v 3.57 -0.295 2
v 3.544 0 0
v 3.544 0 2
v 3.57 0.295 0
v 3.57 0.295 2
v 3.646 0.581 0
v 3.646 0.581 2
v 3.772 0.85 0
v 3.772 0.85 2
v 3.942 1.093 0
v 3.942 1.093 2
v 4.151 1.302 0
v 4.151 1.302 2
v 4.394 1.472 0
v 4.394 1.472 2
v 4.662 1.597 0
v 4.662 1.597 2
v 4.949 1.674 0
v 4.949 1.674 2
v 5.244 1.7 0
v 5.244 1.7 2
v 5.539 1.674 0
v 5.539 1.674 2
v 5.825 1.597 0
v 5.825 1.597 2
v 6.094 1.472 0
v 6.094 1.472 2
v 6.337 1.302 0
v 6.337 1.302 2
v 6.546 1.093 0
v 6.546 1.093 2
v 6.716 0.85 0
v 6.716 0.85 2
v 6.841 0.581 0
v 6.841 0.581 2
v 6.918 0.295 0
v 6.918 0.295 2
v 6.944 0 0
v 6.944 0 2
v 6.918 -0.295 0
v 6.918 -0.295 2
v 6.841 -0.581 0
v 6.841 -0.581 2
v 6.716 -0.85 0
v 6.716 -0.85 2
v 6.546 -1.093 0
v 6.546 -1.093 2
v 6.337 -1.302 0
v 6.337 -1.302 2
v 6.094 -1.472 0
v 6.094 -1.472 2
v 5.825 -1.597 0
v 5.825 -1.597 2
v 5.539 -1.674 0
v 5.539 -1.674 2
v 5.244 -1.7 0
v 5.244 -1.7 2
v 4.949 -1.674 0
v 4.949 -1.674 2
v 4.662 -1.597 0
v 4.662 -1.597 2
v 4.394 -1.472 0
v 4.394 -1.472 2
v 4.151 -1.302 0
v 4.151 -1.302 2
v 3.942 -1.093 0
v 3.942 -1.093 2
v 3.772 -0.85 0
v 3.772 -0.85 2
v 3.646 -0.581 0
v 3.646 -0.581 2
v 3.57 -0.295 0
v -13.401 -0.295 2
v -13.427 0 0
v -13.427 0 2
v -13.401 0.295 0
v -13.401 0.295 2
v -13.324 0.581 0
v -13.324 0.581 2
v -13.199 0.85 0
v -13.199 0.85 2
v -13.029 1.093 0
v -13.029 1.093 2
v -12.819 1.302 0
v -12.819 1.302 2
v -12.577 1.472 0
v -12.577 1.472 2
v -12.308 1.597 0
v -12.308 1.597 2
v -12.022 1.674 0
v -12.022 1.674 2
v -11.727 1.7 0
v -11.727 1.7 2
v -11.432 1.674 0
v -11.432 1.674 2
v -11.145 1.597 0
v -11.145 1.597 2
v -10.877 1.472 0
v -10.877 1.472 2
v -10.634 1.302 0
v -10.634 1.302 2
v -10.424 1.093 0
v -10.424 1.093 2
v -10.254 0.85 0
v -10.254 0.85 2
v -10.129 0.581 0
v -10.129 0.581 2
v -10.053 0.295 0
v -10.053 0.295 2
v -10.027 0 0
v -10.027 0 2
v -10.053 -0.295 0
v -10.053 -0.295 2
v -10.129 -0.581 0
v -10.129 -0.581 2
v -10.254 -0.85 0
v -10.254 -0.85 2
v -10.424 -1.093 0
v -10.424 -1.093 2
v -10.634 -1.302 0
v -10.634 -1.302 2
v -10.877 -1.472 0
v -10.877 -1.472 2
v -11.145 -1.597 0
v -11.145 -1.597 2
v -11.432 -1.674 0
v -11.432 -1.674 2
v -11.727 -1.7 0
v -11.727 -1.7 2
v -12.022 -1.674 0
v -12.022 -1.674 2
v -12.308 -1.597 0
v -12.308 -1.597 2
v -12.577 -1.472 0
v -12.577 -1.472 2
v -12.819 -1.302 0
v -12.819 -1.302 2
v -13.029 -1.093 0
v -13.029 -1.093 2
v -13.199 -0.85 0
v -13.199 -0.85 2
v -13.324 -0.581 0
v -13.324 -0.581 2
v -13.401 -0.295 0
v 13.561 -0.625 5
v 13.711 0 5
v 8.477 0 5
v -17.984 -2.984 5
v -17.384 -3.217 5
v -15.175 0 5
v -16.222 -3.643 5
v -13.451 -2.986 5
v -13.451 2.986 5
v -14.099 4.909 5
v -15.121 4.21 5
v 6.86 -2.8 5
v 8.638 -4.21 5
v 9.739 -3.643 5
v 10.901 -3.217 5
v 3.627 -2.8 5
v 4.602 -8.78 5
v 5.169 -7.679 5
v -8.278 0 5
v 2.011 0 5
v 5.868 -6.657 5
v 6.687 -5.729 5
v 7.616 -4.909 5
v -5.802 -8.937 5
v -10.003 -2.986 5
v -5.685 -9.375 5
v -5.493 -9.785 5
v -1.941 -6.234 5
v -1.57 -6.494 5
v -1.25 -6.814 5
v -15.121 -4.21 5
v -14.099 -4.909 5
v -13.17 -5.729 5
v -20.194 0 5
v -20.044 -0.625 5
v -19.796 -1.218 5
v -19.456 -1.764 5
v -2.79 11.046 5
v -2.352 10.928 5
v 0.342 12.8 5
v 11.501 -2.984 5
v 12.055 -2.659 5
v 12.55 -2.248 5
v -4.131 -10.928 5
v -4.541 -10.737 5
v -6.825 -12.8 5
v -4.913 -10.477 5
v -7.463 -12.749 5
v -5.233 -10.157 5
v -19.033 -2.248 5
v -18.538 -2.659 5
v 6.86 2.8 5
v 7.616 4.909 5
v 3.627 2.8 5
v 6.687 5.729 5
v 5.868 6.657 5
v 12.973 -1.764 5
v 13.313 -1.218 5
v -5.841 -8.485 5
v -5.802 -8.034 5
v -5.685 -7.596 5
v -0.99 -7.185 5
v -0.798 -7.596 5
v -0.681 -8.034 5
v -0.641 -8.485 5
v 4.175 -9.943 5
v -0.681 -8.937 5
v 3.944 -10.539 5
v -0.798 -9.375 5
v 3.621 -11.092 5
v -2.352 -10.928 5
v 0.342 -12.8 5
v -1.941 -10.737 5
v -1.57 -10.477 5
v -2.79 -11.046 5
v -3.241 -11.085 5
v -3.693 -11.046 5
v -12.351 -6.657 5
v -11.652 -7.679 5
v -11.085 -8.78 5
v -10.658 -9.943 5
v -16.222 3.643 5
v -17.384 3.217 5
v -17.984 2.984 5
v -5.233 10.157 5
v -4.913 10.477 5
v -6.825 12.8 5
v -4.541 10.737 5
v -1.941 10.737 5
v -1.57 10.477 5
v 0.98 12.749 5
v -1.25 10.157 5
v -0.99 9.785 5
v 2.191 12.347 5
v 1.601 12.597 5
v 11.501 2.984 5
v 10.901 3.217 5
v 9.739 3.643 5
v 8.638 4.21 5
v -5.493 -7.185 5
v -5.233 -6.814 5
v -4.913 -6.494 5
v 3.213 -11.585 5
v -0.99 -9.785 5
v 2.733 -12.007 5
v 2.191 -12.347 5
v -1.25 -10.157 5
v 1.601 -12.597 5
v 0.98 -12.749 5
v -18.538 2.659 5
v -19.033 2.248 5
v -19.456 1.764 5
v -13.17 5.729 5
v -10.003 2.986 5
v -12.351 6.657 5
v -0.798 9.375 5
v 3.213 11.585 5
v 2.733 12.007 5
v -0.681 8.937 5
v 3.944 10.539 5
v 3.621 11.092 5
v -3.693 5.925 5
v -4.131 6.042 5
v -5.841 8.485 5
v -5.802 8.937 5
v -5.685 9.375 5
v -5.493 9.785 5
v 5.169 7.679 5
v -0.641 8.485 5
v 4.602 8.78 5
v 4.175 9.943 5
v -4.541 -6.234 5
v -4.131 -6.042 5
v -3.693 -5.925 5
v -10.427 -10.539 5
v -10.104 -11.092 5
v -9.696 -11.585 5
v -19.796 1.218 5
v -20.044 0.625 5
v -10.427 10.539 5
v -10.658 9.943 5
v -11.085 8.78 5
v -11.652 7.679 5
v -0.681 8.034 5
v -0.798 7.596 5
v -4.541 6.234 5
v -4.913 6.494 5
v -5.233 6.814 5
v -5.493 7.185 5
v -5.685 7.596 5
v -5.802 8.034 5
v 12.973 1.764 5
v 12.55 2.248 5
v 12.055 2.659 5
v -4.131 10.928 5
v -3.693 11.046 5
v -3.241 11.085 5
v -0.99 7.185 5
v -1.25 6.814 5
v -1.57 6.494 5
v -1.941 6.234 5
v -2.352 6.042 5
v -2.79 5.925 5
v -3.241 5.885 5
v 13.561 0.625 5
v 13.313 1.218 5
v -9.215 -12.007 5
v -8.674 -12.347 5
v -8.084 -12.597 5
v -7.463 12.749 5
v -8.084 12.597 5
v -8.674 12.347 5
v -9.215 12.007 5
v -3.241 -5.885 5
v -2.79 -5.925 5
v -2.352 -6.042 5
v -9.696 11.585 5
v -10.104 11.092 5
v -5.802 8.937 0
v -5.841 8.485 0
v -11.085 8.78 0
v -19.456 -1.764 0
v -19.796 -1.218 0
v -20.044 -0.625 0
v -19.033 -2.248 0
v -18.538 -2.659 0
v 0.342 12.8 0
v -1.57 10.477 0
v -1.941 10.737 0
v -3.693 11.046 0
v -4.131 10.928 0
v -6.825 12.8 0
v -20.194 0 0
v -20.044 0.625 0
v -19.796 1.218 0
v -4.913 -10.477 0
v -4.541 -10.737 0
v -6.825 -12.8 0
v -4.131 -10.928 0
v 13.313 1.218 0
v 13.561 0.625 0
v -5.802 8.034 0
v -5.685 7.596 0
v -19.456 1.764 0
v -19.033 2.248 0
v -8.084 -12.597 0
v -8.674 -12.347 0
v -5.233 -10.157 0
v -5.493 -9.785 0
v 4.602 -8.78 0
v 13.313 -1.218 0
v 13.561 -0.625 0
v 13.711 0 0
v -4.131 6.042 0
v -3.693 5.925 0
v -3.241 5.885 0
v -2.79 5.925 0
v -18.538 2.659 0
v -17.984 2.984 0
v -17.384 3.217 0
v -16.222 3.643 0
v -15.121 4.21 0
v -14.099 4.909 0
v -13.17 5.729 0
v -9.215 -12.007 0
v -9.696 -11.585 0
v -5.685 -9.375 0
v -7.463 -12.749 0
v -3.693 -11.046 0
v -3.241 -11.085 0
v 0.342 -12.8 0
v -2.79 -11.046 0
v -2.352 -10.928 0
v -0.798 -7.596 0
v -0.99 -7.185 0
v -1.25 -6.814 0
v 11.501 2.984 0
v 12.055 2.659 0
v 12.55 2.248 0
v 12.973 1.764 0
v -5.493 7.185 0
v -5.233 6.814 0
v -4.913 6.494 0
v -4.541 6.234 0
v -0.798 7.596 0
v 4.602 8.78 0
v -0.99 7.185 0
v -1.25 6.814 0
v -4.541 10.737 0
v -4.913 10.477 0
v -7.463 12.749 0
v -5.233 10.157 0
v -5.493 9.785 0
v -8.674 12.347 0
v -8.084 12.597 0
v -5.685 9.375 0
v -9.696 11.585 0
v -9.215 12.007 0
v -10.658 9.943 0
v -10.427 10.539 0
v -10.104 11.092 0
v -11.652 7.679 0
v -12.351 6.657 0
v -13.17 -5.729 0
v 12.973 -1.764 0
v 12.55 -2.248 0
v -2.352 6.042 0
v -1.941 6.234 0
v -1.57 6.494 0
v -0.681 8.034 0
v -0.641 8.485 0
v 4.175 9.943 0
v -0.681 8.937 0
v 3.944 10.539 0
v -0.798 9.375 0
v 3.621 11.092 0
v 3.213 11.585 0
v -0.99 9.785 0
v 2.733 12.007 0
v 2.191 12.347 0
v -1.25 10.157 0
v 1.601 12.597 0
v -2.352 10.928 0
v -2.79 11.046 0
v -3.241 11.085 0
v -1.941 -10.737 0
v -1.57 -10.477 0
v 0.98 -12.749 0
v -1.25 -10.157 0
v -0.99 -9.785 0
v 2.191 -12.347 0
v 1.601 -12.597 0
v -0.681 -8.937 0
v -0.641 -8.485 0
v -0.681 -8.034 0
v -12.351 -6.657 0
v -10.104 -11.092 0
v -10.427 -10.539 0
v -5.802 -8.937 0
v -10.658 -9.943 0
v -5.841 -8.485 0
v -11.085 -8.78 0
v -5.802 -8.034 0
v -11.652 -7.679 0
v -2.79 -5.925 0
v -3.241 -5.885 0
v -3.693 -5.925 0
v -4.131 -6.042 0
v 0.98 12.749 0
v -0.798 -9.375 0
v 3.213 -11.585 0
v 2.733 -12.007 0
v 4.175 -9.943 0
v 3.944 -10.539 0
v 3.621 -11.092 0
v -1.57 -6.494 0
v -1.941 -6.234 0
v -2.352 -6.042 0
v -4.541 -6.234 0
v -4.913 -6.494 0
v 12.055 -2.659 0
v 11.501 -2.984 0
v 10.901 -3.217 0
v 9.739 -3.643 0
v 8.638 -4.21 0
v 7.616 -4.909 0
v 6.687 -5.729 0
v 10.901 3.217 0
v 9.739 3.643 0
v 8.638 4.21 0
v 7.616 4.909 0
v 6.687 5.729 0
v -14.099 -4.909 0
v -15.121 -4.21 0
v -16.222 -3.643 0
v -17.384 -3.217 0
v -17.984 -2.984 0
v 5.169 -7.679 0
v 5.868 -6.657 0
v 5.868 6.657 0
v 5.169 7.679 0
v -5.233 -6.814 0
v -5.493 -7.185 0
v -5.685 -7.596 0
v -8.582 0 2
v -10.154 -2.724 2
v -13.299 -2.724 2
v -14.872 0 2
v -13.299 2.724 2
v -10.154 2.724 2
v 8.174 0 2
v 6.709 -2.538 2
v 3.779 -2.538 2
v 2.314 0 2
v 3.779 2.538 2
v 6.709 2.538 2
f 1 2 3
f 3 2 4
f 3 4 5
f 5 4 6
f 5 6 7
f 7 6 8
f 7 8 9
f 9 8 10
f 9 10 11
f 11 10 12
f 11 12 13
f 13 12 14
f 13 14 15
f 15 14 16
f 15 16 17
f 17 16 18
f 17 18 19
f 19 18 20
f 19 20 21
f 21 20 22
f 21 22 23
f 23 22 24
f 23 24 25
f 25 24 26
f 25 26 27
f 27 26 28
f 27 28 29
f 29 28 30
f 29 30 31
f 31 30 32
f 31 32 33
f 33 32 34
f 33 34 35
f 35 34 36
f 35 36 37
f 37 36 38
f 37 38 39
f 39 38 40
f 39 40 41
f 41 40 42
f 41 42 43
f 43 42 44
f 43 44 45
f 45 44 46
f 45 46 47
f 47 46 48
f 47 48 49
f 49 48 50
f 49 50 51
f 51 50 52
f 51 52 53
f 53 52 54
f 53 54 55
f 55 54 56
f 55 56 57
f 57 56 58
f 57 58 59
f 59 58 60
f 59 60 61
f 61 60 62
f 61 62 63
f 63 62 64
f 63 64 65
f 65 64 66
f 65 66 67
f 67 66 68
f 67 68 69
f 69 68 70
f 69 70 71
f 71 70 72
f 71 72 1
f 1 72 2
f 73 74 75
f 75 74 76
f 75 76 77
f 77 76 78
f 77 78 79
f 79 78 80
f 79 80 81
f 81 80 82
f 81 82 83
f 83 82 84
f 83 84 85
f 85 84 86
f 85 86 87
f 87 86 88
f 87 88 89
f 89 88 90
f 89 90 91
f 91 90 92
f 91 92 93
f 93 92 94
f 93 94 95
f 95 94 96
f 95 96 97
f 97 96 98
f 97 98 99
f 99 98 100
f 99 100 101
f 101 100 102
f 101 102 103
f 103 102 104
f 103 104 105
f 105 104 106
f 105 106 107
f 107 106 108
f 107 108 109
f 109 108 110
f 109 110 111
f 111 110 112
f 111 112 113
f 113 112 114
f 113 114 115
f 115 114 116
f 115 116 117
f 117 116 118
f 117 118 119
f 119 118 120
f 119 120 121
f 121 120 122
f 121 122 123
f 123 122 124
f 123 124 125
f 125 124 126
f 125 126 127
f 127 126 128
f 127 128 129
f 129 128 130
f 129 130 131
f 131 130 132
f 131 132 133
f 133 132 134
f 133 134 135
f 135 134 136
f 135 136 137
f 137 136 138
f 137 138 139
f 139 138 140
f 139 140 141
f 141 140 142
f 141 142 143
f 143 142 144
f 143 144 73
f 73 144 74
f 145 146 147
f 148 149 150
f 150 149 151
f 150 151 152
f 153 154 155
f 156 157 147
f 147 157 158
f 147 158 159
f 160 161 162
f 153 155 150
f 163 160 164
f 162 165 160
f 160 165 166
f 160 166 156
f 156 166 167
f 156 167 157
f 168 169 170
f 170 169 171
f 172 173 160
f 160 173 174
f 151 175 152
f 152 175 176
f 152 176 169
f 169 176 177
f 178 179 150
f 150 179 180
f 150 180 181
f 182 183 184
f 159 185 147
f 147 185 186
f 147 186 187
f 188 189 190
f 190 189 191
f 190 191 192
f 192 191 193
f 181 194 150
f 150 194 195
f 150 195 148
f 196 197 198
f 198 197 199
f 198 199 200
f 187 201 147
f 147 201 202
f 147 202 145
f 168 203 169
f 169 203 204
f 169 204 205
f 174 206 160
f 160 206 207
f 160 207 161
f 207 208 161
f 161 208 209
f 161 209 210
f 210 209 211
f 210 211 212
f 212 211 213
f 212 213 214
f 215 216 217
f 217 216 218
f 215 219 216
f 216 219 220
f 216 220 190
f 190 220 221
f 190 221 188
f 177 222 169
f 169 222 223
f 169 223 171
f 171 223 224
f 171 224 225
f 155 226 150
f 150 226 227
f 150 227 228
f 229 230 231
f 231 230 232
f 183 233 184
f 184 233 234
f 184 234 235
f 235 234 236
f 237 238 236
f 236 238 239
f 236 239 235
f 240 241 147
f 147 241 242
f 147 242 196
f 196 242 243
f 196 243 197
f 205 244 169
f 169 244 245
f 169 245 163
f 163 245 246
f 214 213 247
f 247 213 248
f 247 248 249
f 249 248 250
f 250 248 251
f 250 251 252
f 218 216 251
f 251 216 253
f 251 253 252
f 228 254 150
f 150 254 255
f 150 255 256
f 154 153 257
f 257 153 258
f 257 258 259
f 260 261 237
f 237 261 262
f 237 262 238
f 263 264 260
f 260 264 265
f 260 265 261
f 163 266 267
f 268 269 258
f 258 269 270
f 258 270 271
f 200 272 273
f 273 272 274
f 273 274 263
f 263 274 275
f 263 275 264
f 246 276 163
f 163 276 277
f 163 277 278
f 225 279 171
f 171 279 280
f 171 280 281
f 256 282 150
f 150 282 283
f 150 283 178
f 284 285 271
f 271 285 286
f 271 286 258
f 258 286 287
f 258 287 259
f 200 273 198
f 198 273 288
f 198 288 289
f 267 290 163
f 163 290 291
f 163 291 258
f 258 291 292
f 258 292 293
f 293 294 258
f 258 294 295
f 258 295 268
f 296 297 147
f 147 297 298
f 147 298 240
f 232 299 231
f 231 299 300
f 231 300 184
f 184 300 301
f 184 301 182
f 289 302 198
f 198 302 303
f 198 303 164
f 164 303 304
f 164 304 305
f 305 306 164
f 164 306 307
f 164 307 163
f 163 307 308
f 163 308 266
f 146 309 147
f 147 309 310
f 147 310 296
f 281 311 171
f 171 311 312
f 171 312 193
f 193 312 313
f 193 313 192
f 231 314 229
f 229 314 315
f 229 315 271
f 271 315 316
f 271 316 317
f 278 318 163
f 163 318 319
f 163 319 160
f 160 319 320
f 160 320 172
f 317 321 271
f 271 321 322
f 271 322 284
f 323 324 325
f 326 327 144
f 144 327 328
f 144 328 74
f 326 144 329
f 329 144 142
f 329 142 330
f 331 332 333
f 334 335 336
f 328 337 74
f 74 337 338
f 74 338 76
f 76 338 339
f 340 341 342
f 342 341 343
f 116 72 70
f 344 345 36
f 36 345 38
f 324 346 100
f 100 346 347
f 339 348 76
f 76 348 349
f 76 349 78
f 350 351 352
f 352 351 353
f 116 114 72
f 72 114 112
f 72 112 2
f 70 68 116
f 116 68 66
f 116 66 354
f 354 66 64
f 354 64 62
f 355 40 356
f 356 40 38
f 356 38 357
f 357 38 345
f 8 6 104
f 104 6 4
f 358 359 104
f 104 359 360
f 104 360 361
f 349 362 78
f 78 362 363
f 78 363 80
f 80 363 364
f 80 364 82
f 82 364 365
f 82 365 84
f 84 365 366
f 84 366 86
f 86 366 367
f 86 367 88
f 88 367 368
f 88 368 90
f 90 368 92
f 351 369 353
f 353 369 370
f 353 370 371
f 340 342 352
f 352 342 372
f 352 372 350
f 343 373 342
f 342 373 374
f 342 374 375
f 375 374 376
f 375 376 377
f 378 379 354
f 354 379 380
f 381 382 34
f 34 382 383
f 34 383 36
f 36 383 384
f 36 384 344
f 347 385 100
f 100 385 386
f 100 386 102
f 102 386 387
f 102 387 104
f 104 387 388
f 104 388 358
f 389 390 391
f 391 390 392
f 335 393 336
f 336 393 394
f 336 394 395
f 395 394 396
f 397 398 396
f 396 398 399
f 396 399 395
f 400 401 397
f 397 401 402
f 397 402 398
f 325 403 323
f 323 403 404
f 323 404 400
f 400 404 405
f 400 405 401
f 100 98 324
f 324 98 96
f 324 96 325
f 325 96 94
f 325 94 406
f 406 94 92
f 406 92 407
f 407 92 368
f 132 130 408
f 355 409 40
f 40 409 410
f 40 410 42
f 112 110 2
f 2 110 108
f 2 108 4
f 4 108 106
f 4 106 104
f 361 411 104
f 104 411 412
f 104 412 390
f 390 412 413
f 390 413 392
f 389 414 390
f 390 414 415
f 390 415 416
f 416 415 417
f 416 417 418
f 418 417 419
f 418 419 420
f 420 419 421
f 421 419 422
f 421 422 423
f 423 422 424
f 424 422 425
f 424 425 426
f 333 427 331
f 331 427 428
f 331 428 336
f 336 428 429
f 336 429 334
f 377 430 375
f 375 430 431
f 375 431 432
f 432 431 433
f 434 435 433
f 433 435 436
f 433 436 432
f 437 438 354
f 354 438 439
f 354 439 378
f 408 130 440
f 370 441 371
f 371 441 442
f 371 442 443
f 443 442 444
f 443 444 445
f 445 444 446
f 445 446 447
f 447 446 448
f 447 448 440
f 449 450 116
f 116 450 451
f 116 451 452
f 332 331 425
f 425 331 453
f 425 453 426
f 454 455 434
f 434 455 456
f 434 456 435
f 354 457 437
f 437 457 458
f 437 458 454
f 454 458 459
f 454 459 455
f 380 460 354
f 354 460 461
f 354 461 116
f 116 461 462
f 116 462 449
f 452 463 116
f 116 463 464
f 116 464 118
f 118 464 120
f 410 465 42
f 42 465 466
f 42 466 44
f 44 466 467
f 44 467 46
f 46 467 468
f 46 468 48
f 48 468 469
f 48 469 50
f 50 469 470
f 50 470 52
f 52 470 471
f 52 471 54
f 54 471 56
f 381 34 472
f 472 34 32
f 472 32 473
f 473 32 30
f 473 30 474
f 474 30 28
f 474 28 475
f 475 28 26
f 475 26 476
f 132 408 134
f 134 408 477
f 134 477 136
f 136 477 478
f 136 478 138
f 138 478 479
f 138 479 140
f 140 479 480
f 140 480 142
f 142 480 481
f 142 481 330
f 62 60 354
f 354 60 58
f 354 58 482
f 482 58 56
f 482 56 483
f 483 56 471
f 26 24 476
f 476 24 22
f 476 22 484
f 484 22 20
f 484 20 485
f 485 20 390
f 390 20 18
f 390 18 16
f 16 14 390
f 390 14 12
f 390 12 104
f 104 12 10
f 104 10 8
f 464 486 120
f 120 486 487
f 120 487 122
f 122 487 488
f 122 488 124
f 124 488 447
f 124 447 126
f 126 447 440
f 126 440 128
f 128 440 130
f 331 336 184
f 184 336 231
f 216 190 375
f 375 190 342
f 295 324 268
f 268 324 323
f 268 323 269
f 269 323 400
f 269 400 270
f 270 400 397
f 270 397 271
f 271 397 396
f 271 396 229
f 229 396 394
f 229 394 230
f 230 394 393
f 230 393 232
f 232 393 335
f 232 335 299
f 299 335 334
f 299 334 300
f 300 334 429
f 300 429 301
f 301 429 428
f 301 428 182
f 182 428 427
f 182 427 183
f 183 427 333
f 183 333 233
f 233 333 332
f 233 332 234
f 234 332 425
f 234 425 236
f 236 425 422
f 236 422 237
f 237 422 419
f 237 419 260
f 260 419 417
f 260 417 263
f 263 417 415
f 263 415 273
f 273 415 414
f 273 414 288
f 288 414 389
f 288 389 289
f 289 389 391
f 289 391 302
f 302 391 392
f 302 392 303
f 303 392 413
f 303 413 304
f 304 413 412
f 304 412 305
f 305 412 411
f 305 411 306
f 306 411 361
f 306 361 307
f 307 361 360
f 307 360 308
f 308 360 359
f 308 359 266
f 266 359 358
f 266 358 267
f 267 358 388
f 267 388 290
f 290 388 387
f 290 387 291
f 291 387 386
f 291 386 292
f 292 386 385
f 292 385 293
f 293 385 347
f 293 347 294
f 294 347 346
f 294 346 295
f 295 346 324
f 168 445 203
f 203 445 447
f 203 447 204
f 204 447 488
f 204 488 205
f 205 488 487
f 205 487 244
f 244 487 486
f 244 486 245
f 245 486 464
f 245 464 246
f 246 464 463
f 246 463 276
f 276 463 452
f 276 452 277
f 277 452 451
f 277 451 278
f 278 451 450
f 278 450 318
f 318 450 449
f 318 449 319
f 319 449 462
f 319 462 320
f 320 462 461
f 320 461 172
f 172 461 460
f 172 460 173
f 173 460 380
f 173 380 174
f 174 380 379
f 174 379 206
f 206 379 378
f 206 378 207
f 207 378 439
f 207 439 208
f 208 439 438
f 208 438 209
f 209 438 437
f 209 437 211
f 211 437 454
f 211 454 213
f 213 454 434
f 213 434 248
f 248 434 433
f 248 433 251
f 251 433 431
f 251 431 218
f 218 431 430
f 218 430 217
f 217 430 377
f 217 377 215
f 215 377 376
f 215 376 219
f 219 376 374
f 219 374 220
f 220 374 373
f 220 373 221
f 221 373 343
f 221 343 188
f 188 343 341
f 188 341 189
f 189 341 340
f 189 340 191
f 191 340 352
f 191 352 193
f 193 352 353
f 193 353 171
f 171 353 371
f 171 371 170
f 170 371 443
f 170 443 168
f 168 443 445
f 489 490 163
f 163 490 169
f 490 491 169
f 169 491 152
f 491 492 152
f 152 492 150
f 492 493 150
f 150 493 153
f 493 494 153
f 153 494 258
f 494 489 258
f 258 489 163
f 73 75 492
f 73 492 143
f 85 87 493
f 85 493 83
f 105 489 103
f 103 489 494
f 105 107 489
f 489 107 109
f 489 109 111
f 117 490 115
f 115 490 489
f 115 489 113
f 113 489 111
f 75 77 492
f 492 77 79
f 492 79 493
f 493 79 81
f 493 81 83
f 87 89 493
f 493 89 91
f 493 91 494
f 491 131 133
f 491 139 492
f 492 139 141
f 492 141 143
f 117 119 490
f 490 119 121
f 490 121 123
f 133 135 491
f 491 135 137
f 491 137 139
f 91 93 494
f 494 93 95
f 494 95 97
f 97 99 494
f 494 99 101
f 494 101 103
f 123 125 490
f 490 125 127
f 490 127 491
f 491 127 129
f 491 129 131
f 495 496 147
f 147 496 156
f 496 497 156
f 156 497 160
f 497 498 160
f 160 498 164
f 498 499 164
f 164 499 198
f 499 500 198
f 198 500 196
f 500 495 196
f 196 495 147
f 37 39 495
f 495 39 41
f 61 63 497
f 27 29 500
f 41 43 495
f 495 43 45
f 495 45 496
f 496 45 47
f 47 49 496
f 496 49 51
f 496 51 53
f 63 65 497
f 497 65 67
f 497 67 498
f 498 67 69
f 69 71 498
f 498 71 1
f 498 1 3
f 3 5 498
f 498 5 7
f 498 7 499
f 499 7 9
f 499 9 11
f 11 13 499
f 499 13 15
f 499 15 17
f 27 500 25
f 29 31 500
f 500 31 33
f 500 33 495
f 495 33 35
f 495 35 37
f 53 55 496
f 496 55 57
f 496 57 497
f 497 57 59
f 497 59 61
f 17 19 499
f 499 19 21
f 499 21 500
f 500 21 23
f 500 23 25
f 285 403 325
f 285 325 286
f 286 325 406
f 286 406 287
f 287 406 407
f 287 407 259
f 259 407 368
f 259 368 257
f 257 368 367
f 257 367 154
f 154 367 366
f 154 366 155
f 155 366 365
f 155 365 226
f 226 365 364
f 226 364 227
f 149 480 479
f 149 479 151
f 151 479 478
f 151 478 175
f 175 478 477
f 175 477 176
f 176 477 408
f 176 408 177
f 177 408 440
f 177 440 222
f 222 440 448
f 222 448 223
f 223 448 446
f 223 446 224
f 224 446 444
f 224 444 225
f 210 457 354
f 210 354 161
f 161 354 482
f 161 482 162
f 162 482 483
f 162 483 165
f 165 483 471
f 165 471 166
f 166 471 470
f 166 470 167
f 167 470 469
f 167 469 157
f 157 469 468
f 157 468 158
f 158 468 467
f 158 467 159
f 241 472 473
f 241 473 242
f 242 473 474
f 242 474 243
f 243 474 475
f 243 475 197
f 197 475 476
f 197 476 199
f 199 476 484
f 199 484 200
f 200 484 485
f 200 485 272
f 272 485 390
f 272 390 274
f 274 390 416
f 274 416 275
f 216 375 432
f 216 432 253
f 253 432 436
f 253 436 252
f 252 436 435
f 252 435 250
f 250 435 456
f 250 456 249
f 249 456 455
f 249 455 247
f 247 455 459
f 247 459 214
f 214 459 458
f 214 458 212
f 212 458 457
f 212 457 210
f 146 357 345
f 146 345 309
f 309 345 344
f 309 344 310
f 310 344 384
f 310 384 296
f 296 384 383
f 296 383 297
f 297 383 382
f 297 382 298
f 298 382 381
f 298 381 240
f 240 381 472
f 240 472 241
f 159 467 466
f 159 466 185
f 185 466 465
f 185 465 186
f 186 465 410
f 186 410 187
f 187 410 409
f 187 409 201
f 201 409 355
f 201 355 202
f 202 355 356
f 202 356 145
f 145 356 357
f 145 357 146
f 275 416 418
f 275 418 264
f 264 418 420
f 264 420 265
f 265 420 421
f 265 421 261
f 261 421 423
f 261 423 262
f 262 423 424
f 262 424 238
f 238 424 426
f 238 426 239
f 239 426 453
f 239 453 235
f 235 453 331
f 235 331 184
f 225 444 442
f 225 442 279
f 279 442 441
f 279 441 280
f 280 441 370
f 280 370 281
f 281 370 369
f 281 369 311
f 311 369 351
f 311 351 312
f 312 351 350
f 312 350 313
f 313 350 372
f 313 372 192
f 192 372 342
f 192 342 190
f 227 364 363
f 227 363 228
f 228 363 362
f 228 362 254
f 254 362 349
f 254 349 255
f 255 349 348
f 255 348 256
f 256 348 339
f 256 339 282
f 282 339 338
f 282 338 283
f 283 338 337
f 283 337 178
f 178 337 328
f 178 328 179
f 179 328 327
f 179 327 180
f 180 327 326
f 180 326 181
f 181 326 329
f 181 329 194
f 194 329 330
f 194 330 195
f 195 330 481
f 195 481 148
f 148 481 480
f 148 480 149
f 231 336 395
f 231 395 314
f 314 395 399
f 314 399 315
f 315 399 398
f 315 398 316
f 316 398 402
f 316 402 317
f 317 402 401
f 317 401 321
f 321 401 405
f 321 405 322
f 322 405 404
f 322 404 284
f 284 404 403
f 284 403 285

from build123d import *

# Parameters (mm, degrees)
ESQUISSE1_W                       = 34
ESQUISSE1_H                       = 25.6
ESQUISSE1_R                       = 1.7
ESQUISSE1_R_2                     = 2.6
BOSS_EXTRU_1_DEPTH                = 5
ENL_V_MAT_EXTRU_2_DEPTH           = 3
ENL_V_MAT_EXTRU_2_DRAFT           = -5
ENL_V_MAT_EXTRU_2_PROFILE_2_DEPTH = 3
ENL_V_MAT_EXTRU_2_PROFILE_2_DRAFT = -5
ENL_V_MAT_EXTRU_3_DEPTH           = 10
CONG_1_R                          = 4


with BuildPart() as part:
    # Esquisse1 → Boss.-Extru.1 (new body)
    with BuildSketch(Plane.XY):
        with Locations((-3.241443597, 0)):
            Rectangle(ESQUISSE1_W, ESQUISSE1_H)
        with Locations((-11.726724972, 0)):
            Circle(ESQUISSE1_R, mode=Mode.SUBTRACT)
        with Locations((-3.241443597, 8.485281374)):
            Circle(ESQUISSE1_R_2, mode=Mode.SUBTRACT)
        with Locations(Location((-3.241443597, -8.485281374, 0), (0, 0, 180))):
            Circle(ESQUISSE1_R_2, mode=Mode.SUBTRACT)
        with Locations(Location((5.243837777, 0, 0), (0, 0, 180))):
            Circle(ESQUISSE1_R, mode=Mode.SUBTRACT)
    extrude(amount=BOSS_EXTRU_1_DEPTH)


with BuildPart() as enl_v_mat_extru_2_tool:
    # Esquisse3 → Enlèv. mat.-Extru.2 (with draft: the straight prism first)
    with BuildSketch(Plane.XY.offset(5)):
        Polygon((-8.278451106, 0), (-10.002588039, 2.986292767), (-13.450861905, 2.986292767), (-15.174998837, 0), (-13.450861905, -2.986292767), (-10.002588039, -2.986292767), align=None)
    extrude(amount=-ENL_V_MAT_EXTRU_2_DEPTH)
    # Enlèv. mat.-Extru.2: the draft: its side faces are tilted about the plane it starts from
    enl_v_mat_extru_2_sides = [enl_v_mat_extru_2_tool.faces().sort_by_distance(p)[0] for p in [
        (-9.140519572, 1.493146384, 3.5),
        (-11.726724972, 2.986292767, 3.5),
        (-14.312930371, 1.493146384, 3.5),
        (-14.312930371, -1.493146384, 3.5),
        (-11.726724972, -2.986292767, 3.5),
        (-9.140519572, -1.493146384, 3.5),
    ]]
    draft(enl_v_mat_extru_2_sides, Plane.XY.offset(5), ENL_V_MAT_EXTRU_2_DRAFT)


with BuildPart() as part_1:
    add(part.part)

    # Enlèv. mat.-Extru.2: cut by enl_v_mat_extru_2_tool
    add(enl_v_mat_extru_2_tool.part, mode=Mode.SUBTRACT)


with BuildPart() as enl_v_mat_extru_2_profile_2_tool:
    # Esquisse3 → Enlèv. mat.-Extru.2 profile 2 (with draft: the straight prism first)
    with BuildSketch(Plane.XY.offset(5)):
        Polygon((8.476999284, 0), (6.860418531, 2.8), (3.627257023, 2.8), (2.010676269, 0), (3.627257023, -2.8), (6.860418531, -2.8), align=None)
    extrude(amount=-ENL_V_MAT_EXTRU_2_PROFILE_2_DEPTH)
    # Enlèv. mat.-Extru.2 profile 2: the draft: its side faces are tilted about the plane it starts from
    enl_v_mat_extru_2_profile_2_sides = [enl_v_mat_extru_2_profile_2_tool.faces().sort_by_distance(p)[0] for p in [
        (7.668708907, 1.4, 3.5),
        (5.243837777, 2.8, 3.5),
        (2.818966646, 1.4, 3.5),
        (2.818966646, -1.4, 3.5),
        (5.243837777, -2.8, 3.5),
        (7.668708907, -1.4, 3.5),
    ]]
    draft(enl_v_mat_extru_2_profile_2_sides, Plane.XY.offset(5), ENL_V_MAT_EXTRU_2_PROFILE_2_DRAFT)


with BuildPart() as part_2:
    add(part_1.part)

    # Enlèv. mat.-Extru.2 profile 2: cut by enl_v_mat_extru_2_profile_2_tool
    add(enl_v_mat_extru_2_profile_2_tool.part, mode=Mode.SUBTRACT)

    # Esquisse4 → Enlèv. mat.-Extru.3 (cut)
    with BuildSketch(Plane(origin=(0, 0, 0), x_dir=(-1, 0, 0), z_dir=(0, 0, -1))):
        with BuildLine():
            Line((10.241443597, 12.8), (20.241443597, 12.8))
            Line((20.241443597, 12.8), (20.241443597, 2.8))
            ThreePointArc((20.241443597, 2.8), (13.170375785, 5.728932188), (10.241443597, 12.8))
        make_face()
        with BuildLine():
            Line((20.241443597, -12.8), (20.241443597, -2.8))
            ThreePointArc((20.241443597, -2.8), (13.170375785, -5.728932188), (10.241443597, -12.8))
            Line((10.241443597, -12.8), (20.241443597, -12.8))
        make_face()
        with BuildLine():
            Line((-3.758556403, -12.8), (-13.758556403, -12.8))
            Line((-13.758556403, -12.8), (-13.758556403, -2.8))
            ThreePointArc((-13.758556403, -2.8), (-6.687488591, -5.728932188), (-3.758556403, -12.8))
        make_face()
        with BuildLine():
            Line((-13.758556403, 12.8), (-13.758556403, 2.8))
            ThreePointArc((-13.758556403, 2.8), (-6.687488591, 5.728932188), (-3.758556403, 12.8))
            Line((-3.758556403, 12.8), (-13.758556403, 12.8))
        make_face()
    extrude(amount=-ENL_V_MAT_EXTRU_3_DEPTH, mode=Mode.SUBTRACT)

    # Congé1
    # the kernel refuses this fillet: 4 mm, written as the material it takes off along each edge
    with BuildSketch(Plane(origin=(-10.241443597, -12.8, -8.541019662), x_dir=(1, 0, 0), z_dir=(0, 0, 1)), Plane(origin=(-20.241443597, 2.8, -8.541019662), x_dir=(0, -1, 0), z_dir=(0, 0, 1)), Plane(origin=(3.758556403, 12.8, -8.541019662), x_dir=(-1, 0, 0), z_dir=(0, 0, 1))) as cong_1_piece_1:
        with BuildLine():
            CenterArc((3.416407865, 4), CONG_1_R, 196.601549599, 73.398450401)
            ThreePointArc((-0.416851525, 2.857142857), (-0.104761631, 1.443695821), (0, 0))
            Line((0, 0), (3.416407865, 0))
        make_face()
    extrude(amount=22.082039325, mode=Mode.SUBTRACT)
    with BuildSketch(Plane(origin=(-20.241443597, -2.8, -8.541019662), x_dir=(0.9895238368781002, -0.14436958214957515, 0), z_dir=(0, 0, 1)), Plane(origin=(-10.241443597, 12.8, -8.541019662), x_dir=(-0.14436958214957388, -0.9895238368781005, 0), z_dir=(0, 0, 1)), Plane(origin=(13.758556403, 2.8, -8.541019662), x_dir=(-0.9895238368781005, 0.14436958214957332, 0), z_dir=(0, 0, 1))) as cong_1_piece_2:
        with BuildLine():
            CenterArc((3.464869972, 3.958095348), CONG_1_R, 188.300774799, 73.398450401)
            Line((-0.493225376, 3.380617019), (0, 0))
            ThreePointArc((0, 0), (1.443695821, 0.104761631), (2.887391643, 0))
        make_face()
    extrude(amount=22.082039325, mode=Mode.SUBTRACT)
    with BuildSketch(Plane(origin=(3.758556403, -12.8, -8.541019662), x_dir=(-1, 0, 0), z_dir=(0, 0, 1))) as cong_1_piece_3:
        with BuildLine():
            CenterArc((3.416407865, -4), CONG_1_R, 90, 73.398450401)
            ThreePointArc((-0.416851525, -2.857142857), (-0.104761631, -1.443695821), (0, 0))
            Line((0, 0), (3.416407865, 0))
        make_face()
    extrude(amount=22.082039325, mode=Mode.SUBTRACT)
    with BuildSketch(Plane(origin=(13.758556403, -2.8, -8.541019662), x_dir=(-0.9895238368781001, -0.14436958214957546, 0), z_dir=(0, 0, 1))) as cong_1_piece_4:
        with BuildLine():
            CenterArc((3.464869972, -3.958095348), CONG_1_R, 98.3007748, 73.398450401)
            Line((-0.493225376, -3.380617019), (0, 0))
            ThreePointArc((0, 0), (1.443695821, -0.104761631), (2.887391643, 0))
        make_face()
    extrude(amount=22.082039325, mode=Mode.SUBTRACT)


solid = part_2.part
